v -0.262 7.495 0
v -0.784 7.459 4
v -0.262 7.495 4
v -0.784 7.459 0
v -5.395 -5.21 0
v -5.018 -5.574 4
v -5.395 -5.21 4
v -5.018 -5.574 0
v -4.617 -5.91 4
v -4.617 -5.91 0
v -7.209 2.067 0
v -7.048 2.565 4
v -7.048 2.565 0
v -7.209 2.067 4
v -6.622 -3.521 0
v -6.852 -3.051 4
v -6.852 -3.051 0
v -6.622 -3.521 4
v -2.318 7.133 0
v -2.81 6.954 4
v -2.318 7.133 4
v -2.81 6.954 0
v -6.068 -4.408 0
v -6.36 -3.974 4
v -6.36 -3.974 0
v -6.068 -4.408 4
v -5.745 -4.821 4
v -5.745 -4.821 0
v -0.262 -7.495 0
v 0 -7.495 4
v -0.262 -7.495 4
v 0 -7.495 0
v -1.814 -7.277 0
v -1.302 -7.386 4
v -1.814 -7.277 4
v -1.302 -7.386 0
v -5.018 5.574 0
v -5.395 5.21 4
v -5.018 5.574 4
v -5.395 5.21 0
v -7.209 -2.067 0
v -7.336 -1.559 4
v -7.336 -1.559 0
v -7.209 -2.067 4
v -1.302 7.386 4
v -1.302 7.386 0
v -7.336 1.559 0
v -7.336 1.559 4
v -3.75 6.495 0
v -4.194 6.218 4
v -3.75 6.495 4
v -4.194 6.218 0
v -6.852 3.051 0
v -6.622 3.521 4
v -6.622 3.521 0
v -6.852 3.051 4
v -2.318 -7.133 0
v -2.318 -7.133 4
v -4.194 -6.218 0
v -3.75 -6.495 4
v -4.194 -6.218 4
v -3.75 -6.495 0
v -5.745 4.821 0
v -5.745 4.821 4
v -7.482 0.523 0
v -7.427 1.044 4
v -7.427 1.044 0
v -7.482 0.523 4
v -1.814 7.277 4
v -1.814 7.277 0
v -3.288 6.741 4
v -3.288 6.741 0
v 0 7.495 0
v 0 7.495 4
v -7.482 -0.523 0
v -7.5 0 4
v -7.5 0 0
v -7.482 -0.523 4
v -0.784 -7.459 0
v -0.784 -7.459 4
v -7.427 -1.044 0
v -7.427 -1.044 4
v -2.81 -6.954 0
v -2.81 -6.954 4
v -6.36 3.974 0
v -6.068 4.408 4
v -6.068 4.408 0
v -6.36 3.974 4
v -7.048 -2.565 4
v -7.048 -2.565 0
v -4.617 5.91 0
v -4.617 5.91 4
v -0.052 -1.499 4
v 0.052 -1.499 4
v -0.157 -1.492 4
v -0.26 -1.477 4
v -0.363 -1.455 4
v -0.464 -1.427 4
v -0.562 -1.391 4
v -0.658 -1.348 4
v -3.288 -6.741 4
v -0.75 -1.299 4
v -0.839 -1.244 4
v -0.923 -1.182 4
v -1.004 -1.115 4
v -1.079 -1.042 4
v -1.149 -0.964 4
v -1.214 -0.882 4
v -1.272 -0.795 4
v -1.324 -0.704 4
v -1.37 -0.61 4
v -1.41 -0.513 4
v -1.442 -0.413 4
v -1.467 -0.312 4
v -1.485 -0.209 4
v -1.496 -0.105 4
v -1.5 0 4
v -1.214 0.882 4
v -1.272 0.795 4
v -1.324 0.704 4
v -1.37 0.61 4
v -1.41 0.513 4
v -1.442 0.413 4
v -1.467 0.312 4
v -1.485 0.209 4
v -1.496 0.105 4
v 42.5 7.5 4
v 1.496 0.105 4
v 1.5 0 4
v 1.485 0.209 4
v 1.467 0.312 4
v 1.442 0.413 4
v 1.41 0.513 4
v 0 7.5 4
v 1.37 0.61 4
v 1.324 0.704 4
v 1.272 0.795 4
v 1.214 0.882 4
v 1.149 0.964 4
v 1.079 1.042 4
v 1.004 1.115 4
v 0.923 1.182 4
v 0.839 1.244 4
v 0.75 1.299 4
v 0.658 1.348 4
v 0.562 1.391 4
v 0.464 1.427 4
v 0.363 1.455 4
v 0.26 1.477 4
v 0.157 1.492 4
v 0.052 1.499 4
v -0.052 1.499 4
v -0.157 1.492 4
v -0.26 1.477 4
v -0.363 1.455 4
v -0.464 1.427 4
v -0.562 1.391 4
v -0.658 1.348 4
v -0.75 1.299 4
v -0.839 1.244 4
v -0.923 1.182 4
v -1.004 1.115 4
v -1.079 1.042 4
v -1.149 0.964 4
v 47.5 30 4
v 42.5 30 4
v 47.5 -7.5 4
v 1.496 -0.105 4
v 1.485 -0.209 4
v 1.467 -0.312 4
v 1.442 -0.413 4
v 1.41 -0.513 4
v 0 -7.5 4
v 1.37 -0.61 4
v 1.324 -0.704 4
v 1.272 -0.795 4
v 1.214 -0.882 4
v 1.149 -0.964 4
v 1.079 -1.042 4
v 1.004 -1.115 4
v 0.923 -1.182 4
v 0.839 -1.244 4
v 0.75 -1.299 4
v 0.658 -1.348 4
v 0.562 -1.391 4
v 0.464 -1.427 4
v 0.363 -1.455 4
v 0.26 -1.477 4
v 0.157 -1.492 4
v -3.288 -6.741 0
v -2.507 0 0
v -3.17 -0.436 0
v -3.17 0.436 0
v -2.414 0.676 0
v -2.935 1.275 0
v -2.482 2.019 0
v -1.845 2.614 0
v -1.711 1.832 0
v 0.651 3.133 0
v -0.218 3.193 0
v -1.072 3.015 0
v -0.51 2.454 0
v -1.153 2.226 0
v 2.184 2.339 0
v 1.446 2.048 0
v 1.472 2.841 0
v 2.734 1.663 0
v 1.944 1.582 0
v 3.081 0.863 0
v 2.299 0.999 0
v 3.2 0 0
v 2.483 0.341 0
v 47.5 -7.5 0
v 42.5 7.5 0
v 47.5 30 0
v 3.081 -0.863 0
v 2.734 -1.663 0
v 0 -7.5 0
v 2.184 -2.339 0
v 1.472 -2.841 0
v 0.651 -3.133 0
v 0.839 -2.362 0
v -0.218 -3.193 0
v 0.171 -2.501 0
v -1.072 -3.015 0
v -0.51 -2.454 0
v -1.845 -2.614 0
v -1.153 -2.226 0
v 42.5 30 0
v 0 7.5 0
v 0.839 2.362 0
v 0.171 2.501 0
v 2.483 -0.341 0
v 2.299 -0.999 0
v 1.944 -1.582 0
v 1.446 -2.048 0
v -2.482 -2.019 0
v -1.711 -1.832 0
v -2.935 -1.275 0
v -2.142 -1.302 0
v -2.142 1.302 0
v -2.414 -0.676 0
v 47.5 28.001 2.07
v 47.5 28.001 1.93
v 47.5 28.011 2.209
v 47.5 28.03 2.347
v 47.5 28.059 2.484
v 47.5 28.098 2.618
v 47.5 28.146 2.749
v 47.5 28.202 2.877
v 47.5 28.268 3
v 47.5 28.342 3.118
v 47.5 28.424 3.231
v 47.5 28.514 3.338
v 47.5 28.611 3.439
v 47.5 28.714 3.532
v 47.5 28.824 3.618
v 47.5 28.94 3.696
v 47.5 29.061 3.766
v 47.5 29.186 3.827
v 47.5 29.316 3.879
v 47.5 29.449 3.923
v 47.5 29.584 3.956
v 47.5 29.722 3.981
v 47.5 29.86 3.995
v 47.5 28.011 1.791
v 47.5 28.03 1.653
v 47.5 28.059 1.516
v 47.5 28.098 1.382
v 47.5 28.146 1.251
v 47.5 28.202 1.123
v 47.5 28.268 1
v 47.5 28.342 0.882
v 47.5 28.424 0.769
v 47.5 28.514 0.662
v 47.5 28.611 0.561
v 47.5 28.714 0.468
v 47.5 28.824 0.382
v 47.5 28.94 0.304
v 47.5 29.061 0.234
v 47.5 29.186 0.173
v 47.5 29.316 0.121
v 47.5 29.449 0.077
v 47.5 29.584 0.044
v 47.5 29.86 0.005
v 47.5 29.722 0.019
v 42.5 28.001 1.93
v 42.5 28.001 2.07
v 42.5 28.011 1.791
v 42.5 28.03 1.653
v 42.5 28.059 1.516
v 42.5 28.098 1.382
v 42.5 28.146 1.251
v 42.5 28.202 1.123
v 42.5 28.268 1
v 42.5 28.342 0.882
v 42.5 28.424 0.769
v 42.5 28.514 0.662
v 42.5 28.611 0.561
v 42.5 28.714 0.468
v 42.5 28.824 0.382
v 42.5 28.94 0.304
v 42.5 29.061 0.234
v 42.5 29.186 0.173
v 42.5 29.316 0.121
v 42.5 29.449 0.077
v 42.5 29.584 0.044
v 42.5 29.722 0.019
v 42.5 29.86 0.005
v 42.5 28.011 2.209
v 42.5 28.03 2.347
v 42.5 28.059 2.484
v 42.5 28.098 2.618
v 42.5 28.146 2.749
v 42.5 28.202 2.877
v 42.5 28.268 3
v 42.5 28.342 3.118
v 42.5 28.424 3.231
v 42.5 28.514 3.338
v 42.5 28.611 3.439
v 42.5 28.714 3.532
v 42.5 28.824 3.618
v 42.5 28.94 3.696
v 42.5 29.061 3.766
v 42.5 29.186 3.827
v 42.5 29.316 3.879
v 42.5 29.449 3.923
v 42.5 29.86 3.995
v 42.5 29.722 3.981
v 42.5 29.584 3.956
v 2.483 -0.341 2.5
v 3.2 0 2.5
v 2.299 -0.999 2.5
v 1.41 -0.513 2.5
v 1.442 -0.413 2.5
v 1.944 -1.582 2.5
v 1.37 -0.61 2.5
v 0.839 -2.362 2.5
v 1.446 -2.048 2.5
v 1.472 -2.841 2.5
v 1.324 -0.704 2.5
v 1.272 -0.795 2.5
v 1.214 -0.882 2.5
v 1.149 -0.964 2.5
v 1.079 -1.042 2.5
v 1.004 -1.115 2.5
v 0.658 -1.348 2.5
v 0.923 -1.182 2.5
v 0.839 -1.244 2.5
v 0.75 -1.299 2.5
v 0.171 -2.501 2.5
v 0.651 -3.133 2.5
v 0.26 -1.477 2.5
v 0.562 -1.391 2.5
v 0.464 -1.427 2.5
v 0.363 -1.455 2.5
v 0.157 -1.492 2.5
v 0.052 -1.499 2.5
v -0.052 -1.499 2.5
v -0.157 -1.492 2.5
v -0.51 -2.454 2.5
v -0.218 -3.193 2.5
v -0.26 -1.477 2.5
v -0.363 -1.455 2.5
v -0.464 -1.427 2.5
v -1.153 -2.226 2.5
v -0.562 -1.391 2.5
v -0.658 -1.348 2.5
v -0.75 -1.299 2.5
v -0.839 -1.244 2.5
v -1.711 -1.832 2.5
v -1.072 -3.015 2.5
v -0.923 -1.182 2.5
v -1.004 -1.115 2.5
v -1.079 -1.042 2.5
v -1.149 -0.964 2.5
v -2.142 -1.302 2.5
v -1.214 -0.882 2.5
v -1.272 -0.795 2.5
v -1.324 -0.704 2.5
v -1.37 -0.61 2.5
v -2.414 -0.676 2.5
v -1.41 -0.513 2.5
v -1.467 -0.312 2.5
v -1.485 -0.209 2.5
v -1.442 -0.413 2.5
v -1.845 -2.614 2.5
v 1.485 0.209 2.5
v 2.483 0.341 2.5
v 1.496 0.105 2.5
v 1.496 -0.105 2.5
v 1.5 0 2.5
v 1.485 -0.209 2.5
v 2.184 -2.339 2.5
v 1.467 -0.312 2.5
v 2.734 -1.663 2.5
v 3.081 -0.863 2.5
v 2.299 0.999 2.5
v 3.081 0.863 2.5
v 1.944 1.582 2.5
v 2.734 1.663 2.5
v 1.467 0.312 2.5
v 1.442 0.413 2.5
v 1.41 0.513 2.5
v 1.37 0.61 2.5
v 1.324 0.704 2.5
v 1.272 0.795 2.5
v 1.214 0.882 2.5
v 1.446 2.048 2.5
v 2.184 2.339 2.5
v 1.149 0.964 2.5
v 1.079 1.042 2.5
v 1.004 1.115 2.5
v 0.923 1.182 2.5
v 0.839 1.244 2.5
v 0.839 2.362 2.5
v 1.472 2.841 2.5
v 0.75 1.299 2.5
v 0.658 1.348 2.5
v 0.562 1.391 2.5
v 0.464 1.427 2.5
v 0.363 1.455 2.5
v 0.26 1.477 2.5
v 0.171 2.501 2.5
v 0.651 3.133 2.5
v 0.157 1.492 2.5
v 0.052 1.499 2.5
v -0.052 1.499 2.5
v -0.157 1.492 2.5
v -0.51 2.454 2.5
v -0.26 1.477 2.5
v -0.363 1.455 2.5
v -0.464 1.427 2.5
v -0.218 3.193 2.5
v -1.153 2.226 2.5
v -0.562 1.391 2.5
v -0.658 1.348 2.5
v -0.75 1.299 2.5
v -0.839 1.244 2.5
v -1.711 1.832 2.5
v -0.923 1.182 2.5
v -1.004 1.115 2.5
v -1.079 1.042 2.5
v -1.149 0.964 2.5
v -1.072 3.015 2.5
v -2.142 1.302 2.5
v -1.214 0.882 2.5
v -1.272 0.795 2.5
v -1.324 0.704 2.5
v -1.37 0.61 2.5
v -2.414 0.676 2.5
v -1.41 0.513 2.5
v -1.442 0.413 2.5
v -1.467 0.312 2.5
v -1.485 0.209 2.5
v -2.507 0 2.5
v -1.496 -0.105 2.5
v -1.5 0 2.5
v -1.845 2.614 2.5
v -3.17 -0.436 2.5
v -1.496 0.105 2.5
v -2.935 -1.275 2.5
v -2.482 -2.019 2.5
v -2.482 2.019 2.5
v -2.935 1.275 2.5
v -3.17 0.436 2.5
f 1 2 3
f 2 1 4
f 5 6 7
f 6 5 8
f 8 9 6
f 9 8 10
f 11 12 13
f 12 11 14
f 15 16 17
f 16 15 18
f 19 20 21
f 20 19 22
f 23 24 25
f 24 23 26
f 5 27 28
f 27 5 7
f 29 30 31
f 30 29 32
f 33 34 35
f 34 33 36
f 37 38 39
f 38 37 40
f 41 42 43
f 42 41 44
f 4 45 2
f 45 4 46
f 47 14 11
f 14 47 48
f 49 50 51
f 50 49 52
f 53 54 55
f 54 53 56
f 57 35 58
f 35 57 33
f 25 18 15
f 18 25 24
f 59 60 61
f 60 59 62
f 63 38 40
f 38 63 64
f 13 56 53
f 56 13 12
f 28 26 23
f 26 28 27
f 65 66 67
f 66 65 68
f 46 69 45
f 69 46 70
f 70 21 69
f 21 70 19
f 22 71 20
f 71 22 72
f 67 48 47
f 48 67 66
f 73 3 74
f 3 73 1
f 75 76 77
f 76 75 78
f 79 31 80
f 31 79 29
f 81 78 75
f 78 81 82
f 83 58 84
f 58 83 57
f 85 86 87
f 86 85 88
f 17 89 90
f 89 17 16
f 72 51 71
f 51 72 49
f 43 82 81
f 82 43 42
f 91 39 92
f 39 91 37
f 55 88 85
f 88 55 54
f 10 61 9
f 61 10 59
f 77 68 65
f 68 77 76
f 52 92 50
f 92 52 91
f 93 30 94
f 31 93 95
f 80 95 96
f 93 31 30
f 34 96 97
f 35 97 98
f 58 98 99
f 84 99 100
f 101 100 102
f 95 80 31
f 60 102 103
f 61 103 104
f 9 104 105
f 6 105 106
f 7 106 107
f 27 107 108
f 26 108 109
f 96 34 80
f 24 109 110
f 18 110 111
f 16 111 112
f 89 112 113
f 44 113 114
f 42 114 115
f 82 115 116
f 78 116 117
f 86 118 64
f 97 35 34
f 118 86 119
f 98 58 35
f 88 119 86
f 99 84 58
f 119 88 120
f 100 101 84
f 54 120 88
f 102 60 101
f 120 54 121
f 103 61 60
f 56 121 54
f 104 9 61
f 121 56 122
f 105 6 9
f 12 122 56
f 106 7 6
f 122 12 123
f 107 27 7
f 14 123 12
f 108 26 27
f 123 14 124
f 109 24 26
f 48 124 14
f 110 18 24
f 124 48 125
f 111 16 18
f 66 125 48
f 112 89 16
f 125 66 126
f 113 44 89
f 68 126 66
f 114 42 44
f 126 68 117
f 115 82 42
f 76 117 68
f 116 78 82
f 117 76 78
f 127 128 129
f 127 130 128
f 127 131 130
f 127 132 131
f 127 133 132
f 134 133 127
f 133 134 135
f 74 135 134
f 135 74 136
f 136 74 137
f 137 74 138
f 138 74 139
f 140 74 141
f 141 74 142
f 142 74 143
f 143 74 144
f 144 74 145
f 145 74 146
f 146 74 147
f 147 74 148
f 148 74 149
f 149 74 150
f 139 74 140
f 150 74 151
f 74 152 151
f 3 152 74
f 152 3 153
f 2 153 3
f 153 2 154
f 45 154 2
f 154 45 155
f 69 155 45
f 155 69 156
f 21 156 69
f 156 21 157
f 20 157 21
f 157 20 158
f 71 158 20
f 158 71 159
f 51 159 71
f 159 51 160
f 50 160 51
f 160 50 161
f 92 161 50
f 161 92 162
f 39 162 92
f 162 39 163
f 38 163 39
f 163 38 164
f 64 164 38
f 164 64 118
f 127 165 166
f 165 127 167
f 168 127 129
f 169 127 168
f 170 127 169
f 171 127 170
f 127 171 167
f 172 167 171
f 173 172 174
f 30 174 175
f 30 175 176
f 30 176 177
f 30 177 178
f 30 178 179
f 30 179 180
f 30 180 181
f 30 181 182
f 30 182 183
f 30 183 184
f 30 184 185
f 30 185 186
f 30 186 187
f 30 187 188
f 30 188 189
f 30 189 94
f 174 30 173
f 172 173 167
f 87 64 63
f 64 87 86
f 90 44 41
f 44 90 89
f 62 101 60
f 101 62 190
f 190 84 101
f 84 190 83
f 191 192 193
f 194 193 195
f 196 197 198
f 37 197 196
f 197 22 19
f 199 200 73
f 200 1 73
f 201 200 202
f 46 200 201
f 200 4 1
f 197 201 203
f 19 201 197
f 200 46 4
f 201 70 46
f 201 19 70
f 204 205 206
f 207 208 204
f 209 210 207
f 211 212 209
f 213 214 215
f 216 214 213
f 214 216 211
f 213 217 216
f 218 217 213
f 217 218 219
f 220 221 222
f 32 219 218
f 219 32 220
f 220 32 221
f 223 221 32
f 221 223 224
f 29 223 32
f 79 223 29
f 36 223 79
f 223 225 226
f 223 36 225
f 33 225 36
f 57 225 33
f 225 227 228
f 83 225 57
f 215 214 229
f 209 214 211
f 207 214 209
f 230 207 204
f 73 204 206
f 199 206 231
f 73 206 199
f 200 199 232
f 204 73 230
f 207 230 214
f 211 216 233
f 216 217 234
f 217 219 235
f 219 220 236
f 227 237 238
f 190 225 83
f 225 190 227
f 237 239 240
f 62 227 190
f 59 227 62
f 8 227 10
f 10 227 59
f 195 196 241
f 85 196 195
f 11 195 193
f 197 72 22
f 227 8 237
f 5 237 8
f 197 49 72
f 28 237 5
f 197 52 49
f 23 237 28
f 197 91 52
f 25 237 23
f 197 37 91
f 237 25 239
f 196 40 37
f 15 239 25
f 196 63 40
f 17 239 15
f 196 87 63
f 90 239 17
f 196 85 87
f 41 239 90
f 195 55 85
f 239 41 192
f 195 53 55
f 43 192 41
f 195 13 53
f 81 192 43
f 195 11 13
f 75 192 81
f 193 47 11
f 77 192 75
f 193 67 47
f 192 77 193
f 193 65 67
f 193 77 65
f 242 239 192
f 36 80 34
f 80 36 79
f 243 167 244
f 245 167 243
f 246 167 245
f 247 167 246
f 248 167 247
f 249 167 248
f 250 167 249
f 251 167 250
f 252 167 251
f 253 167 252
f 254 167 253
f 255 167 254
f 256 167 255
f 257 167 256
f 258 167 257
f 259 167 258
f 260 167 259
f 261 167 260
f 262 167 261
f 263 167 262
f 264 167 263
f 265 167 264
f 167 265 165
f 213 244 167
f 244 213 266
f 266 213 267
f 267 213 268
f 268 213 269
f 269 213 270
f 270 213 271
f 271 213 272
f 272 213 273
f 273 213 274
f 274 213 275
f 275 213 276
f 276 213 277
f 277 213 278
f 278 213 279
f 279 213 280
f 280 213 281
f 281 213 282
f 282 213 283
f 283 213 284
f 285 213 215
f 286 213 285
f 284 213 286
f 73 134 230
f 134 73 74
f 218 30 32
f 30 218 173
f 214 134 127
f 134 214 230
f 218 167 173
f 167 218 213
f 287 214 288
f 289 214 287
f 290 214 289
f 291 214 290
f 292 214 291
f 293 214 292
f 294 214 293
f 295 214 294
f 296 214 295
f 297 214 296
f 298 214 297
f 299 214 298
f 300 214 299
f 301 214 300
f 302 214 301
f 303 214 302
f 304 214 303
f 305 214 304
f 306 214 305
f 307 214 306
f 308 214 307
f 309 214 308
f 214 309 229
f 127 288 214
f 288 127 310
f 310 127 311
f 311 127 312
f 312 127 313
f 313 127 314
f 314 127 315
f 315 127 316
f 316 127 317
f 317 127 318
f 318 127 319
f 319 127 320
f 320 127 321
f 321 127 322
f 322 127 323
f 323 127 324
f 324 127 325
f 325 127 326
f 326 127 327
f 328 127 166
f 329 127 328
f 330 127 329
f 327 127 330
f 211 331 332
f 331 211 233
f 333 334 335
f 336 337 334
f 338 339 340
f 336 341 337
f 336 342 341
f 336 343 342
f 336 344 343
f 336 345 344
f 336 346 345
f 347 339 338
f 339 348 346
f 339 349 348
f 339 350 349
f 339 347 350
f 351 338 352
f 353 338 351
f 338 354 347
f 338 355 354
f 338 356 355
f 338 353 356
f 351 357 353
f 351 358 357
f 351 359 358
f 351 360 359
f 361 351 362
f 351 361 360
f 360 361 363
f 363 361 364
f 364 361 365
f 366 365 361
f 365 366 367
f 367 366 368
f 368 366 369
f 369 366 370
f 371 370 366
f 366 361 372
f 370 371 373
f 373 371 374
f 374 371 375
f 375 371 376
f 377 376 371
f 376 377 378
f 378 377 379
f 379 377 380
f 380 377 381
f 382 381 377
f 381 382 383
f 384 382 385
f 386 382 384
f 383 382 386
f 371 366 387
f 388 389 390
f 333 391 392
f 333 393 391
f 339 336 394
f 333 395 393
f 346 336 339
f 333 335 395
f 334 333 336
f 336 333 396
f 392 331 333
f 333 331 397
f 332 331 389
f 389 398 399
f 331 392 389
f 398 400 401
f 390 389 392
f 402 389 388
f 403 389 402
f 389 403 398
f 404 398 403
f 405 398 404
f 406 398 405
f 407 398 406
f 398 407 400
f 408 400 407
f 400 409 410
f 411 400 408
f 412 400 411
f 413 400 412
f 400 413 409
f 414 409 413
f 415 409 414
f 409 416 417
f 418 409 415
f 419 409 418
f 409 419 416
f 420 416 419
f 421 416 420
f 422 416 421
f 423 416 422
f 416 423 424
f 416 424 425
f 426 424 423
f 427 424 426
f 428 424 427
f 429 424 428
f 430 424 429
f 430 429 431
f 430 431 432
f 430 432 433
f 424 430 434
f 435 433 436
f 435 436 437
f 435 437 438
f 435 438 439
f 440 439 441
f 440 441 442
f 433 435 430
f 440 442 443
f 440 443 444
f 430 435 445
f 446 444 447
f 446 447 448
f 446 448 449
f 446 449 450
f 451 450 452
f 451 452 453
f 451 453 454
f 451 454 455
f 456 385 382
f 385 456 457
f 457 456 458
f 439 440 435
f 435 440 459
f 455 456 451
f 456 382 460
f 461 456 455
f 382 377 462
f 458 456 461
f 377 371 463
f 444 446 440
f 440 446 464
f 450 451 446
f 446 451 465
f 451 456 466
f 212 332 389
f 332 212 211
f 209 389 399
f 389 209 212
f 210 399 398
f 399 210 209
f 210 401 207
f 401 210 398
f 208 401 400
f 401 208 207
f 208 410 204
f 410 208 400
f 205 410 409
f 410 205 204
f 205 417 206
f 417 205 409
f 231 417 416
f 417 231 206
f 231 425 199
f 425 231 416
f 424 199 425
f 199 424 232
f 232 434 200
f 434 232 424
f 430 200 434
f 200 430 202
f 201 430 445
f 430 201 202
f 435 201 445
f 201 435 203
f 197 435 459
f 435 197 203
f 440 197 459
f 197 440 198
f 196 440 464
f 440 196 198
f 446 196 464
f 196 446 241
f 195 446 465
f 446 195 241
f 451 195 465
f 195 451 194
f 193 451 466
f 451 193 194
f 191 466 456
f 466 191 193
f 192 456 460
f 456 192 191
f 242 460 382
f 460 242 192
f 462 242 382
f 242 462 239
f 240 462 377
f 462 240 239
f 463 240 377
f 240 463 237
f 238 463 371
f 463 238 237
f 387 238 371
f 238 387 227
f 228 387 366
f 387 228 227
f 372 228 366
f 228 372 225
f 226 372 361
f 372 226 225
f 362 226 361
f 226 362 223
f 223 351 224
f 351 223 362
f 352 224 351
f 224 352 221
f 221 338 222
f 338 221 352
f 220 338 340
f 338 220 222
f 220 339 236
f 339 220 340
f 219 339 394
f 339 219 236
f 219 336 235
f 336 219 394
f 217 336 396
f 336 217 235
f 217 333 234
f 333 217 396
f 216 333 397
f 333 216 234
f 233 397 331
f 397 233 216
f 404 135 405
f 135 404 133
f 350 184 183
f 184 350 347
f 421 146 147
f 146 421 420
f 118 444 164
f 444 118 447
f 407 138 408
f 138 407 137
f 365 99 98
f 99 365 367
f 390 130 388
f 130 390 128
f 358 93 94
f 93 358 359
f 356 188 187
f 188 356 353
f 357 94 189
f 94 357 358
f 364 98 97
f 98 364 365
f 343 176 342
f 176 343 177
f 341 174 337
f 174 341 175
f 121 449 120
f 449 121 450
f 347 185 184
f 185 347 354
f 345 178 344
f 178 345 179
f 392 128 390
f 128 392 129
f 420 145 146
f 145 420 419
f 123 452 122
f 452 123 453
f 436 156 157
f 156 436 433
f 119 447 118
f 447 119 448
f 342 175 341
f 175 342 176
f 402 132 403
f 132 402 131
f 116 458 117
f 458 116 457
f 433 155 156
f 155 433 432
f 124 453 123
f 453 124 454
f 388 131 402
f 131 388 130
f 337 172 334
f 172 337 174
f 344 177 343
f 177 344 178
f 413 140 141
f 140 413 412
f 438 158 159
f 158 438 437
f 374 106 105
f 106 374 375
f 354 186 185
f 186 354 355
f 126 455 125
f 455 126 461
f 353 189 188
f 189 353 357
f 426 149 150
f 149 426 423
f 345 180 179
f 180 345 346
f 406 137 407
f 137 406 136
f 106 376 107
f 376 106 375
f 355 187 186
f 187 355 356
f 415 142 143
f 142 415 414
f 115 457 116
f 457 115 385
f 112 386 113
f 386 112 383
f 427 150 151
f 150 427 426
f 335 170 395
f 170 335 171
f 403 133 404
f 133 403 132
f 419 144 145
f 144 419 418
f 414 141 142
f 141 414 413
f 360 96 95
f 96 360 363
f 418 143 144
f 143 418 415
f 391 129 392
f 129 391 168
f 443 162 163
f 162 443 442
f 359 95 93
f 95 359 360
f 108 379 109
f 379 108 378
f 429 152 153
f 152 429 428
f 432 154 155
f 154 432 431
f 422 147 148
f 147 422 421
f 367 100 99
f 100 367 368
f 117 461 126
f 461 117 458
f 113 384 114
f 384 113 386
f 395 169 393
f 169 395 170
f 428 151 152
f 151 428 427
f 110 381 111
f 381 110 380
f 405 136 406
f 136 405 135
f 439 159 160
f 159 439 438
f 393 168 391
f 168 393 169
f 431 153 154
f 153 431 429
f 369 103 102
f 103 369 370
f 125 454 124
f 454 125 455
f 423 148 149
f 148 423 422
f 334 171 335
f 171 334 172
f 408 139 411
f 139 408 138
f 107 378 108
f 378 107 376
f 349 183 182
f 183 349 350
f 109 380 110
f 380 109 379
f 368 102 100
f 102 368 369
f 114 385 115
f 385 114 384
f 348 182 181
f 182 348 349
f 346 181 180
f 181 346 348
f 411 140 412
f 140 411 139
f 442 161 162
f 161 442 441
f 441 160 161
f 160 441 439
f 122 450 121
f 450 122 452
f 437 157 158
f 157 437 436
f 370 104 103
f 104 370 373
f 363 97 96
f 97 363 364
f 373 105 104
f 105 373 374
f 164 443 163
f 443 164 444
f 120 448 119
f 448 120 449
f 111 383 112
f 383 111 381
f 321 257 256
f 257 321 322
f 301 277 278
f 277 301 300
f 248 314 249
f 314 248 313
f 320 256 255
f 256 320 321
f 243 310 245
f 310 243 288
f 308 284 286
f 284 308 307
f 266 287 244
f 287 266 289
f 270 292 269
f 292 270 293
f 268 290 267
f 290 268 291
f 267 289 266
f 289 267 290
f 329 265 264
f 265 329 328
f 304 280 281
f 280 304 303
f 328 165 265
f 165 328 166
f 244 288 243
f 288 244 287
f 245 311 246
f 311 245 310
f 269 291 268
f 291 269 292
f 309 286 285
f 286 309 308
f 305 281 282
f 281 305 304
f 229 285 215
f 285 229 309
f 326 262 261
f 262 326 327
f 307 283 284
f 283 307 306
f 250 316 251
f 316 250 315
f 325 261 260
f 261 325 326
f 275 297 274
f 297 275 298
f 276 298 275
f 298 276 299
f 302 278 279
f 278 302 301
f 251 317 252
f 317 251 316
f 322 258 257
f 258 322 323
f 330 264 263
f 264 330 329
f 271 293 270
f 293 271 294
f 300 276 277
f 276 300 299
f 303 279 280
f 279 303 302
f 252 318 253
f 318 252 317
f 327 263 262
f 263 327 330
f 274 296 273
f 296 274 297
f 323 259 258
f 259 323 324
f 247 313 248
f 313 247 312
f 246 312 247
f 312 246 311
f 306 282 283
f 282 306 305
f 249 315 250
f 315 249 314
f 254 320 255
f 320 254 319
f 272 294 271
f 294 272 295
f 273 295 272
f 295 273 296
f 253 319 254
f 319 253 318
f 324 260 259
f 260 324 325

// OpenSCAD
// file: servoAxisFit.scad
#servoAxisFit();

module servoAxisFit(){
	toothAngle = 360/23;
	
	cylinder(d=3, h=5, $fn=90);
	
	for(angle = [0:toothAngle:360])
		rotate([0, 0, angle])
			linear_extrude(2.5)
				tooth();
	
	module tooth(){
		triangle();
		rotate([180, 0, 0])
			triangle();
	}

	module triangle(){
		angleOverlap = 0.1;
		angle = toothAngle/2 + angleOverlap;
		innerRadius = 2.5;
		height = innerRadius * sin(angle);
		a = innerRadius * cos(angle);
		polygon([[0,0], [3.2,0], [a,height]]);
	}
}
// main file
use <servoAxisFit.scad>;

$fn=90;
toothAngle = 360/25;
height = 4;
leverWidth = 15;

difference(){	
	leverLength = 45;
	leverDepth = 30;
	fingerWidth = 5;
	union(){
		cylinder(d=leverWidth, h=height);
		translate([0, -leverWidth/2, 0])
			cube([leverLength+fingerWidth/2, leverWidth, height]);
		
		translate([leverLength-fingerWidth/2, 0, 0])
			cube([fingerWidth, leverDepth, height]);
	}
	#servoAxisFit();
	#translate([leverLength-fingerWidth/2, leverDepth, height/2])
		rotate([0, 90, 0])
			cylinder(d=height, h=fingerWidth);
}

module servoAxis(height = 1){
	for(angle = [0:toothAngle:360])
		rotate([0, 0, angle])
			linear_extrude(height)
				tooth();
}

module tooth(){
	triangle();
	rotate([180, 0, 0])
		triangle();
}

module triangle(){
	angleOverlap = 0.1;
	angle = toothAngle/2 + angleOverlap;
	innerDiameter = 2.8;
	height = innerDiameter * sin(angle);
	a = innerDiameter * cos(angle);
	polygon([[0,0], [3.2,0], [a,height]]);
}
